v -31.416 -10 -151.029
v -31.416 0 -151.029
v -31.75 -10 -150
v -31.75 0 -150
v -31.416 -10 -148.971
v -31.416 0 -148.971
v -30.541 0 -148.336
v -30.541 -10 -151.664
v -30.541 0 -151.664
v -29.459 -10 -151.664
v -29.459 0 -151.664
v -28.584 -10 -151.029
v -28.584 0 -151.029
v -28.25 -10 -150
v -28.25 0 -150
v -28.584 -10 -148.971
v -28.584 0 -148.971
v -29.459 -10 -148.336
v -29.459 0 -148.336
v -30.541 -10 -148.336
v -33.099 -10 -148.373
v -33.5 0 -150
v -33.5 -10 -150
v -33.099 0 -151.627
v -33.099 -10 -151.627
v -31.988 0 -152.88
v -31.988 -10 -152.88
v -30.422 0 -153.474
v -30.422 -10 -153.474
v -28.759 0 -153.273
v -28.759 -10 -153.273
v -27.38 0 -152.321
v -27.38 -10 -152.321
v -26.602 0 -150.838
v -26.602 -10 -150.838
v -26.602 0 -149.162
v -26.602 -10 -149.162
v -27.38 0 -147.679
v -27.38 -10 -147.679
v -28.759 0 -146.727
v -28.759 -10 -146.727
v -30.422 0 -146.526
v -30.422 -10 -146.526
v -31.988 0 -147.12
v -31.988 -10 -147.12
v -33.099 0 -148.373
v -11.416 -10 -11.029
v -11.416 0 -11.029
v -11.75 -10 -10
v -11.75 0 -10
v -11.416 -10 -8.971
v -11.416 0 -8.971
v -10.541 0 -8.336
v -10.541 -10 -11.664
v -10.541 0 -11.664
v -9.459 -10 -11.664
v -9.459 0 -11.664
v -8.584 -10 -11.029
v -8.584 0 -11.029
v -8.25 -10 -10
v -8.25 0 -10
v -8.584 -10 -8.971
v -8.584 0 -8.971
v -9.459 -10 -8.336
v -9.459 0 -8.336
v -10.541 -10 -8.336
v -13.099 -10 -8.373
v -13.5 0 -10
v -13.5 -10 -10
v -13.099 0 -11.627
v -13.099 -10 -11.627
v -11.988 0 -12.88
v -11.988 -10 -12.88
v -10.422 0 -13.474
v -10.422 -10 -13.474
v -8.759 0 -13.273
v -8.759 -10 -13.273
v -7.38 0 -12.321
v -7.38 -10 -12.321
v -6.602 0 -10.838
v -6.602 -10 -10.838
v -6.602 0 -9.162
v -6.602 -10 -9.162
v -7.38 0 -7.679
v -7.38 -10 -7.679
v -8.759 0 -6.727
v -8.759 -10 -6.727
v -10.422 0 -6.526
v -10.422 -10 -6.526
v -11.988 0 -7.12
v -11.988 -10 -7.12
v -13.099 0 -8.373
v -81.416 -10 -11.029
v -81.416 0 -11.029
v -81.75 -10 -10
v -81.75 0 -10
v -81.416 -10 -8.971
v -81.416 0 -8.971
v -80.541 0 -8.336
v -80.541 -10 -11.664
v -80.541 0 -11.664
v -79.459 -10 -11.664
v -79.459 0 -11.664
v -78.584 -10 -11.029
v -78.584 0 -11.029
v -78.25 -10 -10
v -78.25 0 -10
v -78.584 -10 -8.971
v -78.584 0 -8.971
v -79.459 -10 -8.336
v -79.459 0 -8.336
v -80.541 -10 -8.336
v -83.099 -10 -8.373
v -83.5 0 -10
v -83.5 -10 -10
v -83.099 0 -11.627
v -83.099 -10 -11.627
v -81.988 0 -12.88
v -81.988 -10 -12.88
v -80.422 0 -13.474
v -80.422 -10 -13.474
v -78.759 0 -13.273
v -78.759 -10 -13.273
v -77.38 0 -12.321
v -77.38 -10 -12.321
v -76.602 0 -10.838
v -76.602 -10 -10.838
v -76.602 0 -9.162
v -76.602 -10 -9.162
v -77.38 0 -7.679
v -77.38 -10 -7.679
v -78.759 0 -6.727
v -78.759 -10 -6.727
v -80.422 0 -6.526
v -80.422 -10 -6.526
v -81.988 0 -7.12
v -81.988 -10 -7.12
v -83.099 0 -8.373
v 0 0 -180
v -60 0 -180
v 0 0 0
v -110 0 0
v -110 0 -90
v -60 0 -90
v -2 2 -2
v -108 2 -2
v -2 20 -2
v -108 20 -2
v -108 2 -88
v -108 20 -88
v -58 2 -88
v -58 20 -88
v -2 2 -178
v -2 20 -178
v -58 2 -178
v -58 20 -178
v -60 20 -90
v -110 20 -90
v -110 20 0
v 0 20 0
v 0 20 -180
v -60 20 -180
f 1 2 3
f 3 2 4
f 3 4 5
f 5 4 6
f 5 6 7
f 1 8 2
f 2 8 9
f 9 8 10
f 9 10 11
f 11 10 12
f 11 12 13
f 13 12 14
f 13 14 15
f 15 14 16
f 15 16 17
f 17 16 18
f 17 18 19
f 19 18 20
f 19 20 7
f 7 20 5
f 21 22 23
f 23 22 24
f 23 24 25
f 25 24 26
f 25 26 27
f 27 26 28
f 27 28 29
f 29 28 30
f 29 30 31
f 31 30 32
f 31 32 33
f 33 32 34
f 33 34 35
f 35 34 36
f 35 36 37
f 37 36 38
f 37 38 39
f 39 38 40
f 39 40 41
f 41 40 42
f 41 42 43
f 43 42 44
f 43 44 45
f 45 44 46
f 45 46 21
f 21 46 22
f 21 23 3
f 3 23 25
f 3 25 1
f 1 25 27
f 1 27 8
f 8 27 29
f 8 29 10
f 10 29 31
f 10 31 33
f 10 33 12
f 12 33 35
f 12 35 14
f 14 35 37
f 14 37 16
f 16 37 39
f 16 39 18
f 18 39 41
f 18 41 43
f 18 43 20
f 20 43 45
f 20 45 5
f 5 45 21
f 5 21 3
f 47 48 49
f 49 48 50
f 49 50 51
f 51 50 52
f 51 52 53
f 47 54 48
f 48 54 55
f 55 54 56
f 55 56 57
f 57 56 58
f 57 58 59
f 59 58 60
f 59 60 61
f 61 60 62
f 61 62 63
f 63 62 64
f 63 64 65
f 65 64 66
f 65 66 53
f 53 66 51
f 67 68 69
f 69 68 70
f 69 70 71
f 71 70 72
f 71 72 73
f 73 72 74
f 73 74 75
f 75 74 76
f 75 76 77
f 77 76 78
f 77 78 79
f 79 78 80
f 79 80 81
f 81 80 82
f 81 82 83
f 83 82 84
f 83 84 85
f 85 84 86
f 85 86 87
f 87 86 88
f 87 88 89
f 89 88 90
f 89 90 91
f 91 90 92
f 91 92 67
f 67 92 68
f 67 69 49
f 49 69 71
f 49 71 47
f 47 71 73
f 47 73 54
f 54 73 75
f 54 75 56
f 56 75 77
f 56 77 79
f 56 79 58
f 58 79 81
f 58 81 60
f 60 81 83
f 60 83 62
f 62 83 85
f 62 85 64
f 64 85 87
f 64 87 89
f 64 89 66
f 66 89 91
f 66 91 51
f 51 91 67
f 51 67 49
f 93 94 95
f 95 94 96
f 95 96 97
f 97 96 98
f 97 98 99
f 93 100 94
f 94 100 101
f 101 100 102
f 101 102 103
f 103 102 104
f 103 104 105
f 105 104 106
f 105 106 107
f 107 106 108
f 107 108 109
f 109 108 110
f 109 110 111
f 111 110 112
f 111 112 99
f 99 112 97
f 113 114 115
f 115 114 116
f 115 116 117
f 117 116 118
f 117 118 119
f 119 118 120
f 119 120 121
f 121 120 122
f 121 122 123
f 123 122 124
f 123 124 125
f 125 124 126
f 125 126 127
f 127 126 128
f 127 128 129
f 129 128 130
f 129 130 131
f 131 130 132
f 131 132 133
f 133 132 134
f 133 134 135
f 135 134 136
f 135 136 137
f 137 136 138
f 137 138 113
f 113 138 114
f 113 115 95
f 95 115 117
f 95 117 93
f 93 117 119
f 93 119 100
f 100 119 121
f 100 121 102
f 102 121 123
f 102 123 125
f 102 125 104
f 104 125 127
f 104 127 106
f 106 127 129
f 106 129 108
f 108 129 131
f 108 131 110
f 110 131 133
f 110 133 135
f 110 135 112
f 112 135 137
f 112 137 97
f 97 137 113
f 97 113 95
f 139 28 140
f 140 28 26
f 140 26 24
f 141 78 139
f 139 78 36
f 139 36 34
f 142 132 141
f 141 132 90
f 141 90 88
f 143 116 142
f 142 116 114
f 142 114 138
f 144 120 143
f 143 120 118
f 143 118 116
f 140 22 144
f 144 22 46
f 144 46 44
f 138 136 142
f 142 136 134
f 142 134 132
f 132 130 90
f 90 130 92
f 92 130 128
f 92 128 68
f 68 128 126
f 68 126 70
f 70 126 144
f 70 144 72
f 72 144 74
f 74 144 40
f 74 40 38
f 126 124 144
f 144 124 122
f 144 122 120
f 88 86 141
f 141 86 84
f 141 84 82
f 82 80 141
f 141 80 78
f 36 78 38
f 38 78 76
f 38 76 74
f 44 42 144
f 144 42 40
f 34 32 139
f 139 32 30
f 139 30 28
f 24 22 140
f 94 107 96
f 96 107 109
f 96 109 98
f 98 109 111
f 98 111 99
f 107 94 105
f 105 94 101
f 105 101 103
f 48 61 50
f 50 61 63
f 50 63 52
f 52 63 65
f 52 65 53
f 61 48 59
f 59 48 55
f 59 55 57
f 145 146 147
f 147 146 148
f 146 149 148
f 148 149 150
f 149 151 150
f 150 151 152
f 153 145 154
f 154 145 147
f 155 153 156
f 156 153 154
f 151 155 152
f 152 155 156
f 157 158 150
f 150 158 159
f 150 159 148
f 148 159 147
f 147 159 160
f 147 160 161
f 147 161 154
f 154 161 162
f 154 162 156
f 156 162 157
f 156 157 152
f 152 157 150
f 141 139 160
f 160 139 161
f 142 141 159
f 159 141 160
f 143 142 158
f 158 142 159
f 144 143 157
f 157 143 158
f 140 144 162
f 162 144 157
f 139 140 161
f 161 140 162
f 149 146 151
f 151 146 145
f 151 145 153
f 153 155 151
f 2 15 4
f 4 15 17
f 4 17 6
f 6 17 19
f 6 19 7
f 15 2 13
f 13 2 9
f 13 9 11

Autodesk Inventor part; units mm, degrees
ref_plane "YZ Plane" through (0, 0, 0) normal (1, 0, 0) x (0, 1, 0)
ref_plane "XZ Plane" through (0, 0, 0) normal (0, 1, 0) x (-1, 0, 0)
ref_plane "XY Plane" through (0, 0, 0) normal (0, 0, 1) x (1, 0, 0)
sketch "Szkic1" plane through (0, 0, 0) normal (0, 1, 0) x (-1, 0, 0)
  line L0 (0, 0) -> (110, 0)
  line L1 (110, 0) -> (110, -90)
  line L2 (110, -90) -> (0, -90)
  line L3 (0, -90) -> (0, 0)
  line L4 (0, -90) -> (60, -90)
  line L5 (60, -90) -> (60, -180)
  line L6 (60, -180) -> (0, -180)
  line L7 (0, -180) -> (0, -90)
  line L8 (2, -2) -> (108, -2)
  line L9 (108, -2) -> (108, -88)
  line L10 (108, -88) -> (2, -88)
  line L11 (2, -88) -> (2, -2)
  line L12 (2, -2) -> (108, -88) construction
  line L13 (108, -2) -> (2, -88) construction
  line L14 (2, -92) -> (58, -92)
  line L15 (58, -92) -> (58, -178)
  line L16 (58, -178) -> (2, -178)
  line L17 (2, -178) -> (2, -92)
  line L18 (2, -92) -> (58, -178) construction
  line L19 (58, -92) -> (2, -178) construction
  line L20 (55, -88) -> (2, -88)
  line L21 (2, -88) -> (2, -92)
  line L22 (2, -92) -> (55, -92)
  line L23 (55, -92) -> (55, -88)
  line L24 (58, -92) -> (2, -92)
  line L25 (2, -92) -> (2, -88)
  line L26 (2, -88) -> (58, -88)
  line L27 (58, -88) -> (58, -92)
  line L28 (0, 0) -> (10, 0)
  line L29 (10, 0) -> (10, -10)
  circle A0 centre (10, -10) radius 1.75
  circle A1 centre (10, -10) radius 3.5
  circle A2 centre (20, -10) radius 3.5
  circle A3 centre (20, -10) radius 1.75
  circle A4 centre (30, -10) radius 3.5
  circle A5 centre (30, -10) radius 1.75
  circle A6 centre (40, -10) radius 3.5
  circle A7 centre (40, -10) radius 1.75
  circle A8 centre (50, -10) radius 3.5
  circle A9 centre (50, -10) radius 1.75
  circle A10 centre (60, -10) radius 3.5
  circle A11 centre (60, -10) radius 1.75
  circle A12 centre (70, -10) radius 3.5
  circle A13 centre (70, -10) radius 1.75
  circle A14 centre (80, -10) radius 3.5
  circle A15 centre (80, -10) radius 1.75
  circle A16 centre (90, -10) radius 3.5
  circle A17 centre (90, -10) radius 1.75
  circle A18 centre (100, -10) radius 3.5
  circle A19 centre (100, -10) radius 1.75
  circle A20 centre (10, -20) radius 3.5
  circle A21 centre (10, -20) radius 1.75
  circle A22 centre (20, -20) radius 3.5
  circle A23 centre (20, -20) radius 1.75
  circle A24 centre (30, -20) radius 3.5
  circle A25 centre (30, -20) radius 1.75
  circle A26 centre (40, -20) radius 3.5
  circle A27 centre (40, -20) radius 1.75
  circle A28 centre (50, -20) radius 3.5
  circle A29 centre (50, -20) radius 1.75
  circle A30 centre (60, -20) radius 3.5
  circle A31 centre (60, -20) radius 1.75
  circle A32 centre (70, -20) radius 3.5
  circle A33 centre (70, -20) radius 1.75
  circle A34 centre (80, -20) radius 3.5
  circle A35 centre (80, -20) radius 1.75
  circle A36 centre (90, -20) radius 3.5
  circle A37 centre (90, -20) radius 1.75
  circle A38 centre (100, -20) radius 3.5
  circle A39 centre (100, -20) radius 1.75
  circle A40 centre (10, -30) radius 3.5
  circle A41 centre (10, -30) radius 1.75
  circle A42 centre (20, -30) radius 3.5
  circle A43 centre (20, -30) radius 1.75
  circle A44 centre (30, -30) radius 3.5
  circle A45 centre (30, -30) radius 1.75
  circle A46 centre (40, -30) radius 3.5
  circle A47 centre (40, -30) radius 1.75
  circle A48 centre (50, -30) radius 3.5
  circle A49 centre (50, -30) radius 1.75
  circle A50 centre (60, -30) radius 3.5
  circle A51 centre (60, -30) radius 1.75
  circle A52 centre (70, -30) radius 3.5
  circle A53 centre (70, -30) radius 1.75
  circle A54 centre (80, -30) radius 3.5
  circle A55 centre (80, -30) radius 1.75
  circle A56 centre (90, -30) radius 3.5
  circle A57 centre (90, -30) radius 1.75
  circle A58 centre (100, -30) radius 3.5
  circle A59 centre (100, -30) radius 1.75
  circle A60 centre (10, -40) radius 3.5
  circle A61 centre (10, -40) radius 1.75
  circle A62 centre (20, -40) radius 3.5
  circle A63 centre (20, -40) radius 1.75
  circle A64 centre (30, -40) radius 3.5
  circle A65 centre (30, -40) radius 1.75
  circle A66 centre (40, -40) radius 3.5
  circle A67 centre (40, -40) radius 1.75
  circle A68 centre (50, -40) radius 3.5
  circle A69 centre (50, -40) radius 1.75
  circle A70 centre (60, -40) radius 3.5
  circle A71 centre (60, -40) radius 1.75
  circle A72 centre (70, -40) radius 3.5
  circle A73 centre (70, -40) radius 1.75
  circle A74 centre (80, -40) radius 3.5
  circle A75 centre (80, -40) radius 1.75
  circle A76 centre (90, -40) radius 3.5
  circle A77 centre (90, -40) radius 1.75
  circle A78 centre (100, -40) radius 3.5
  circle A79 centre (100, -40) radius 1.75
  circle A80 centre (10, -50) radius 3.5
  circle A81 centre (10, -50) radius 1.75
  circle A82 centre (20, -50) radius 3.5
  circle A83 centre (20, -50) radius 1.75
  circle A84 centre (30, -50) radius 3.5
  circle A85 centre (30, -50) radius 1.75
  circle A86 centre (40, -50) radius 3.5
  circle A87 centre (40, -50) radius 1.75
  circle A88 centre (50, -50) radius 3.5
  circle A89 centre (50, -50) radius 1.75
  circle A90 centre (60, -50) radius 3.5
  circle A91 centre (60, -50) radius 1.75
  circle A92 centre (70, -50) radius 3.5
  circle A93 centre (70, -50) radius 1.75
  circle A94 centre (80, -50) radius 3.5
  circle A95 centre (80, -50) radius 1.75
  circle A96 centre (90, -50) radius 3.5
  circle A97 centre (90, -50) radius 1.75
  circle A98 centre (100, -50) radius 3.5
  circle A99 centre (100, -50) radius 1.75
  circle A100 centre (10, -60) radius 3.5
  circle A101 centre (10, -60) radius 1.75
  circle A102 centre (20, -60) radius 3.5
  circle A103 centre (20, -60) radius 1.75
  circle A104 centre (30, -60) radius 3.5
  circle A105 centre (30, -60) radius 1.75
  circle A106 centre (40, -60) radius 3.5
  circle A107 centre (40, -60) radius 1.75
  circle A108 centre (50, -60) radius 3.5
  circle A109 centre (50, -60) radius 1.75
  circle A110 centre (60, -60) radius 3.5
  circle A111 centre (60, -60) radius 1.75
  circle A112 centre (70, -60) radius 3.5
  circle A113 centre (70, -60) radius 1.75
  circle A114 centre (80, -60) radius 3.5
  circle A115 centre (80, -60) radius 1.75
  circle A116 centre (90, -60) radius 3.5
  circle A117 centre (90, -60) radius 1.75
  circle A118 centre (100, -60) radius 3.5
  circle A119 centre (100, -60) radius 1.75
  circle A120 centre (10, -70) radius 3.5
  circle A121 centre (10, -70) radius 1.75
  circle A122 centre (20, -70) radius 3.5
  circle A123 centre (20, -70) radius 1.75
  circle A124 centre (30, -70) radius 3.5
  circle A125 centre (30, -70) radius 1.75
  circle A126 centre (40, -70) radius 3.5
  circle A127 centre (40, -70) radius 1.75
  circle A128 centre (50, -70) radius 3.5
  circle A129 centre (50, -70) radius 1.75
  circle A130 centre (60, -70) radius 3.5
  circle A131 centre (60, -70) radius 1.75
  circle A132 centre (70, -70) radius 3.5
  circle A133 centre (70, -70) radius 1.75
  circle A134 centre (80, -70) radius 3.5
  circle A135 centre (80, -70) radius 1.75
  circle A136 centre (90, -70) radius 3.5
  circle A137 centre (90, -70) radius 1.75
  circle A138 centre (100, -70) radius 3.5
  circle A139 centre (100, -70) radius 1.75
  circle A140 centre (10, -80) radius 3.5
  circle A141 centre (10, -80) radius 1.75
  circle A142 centre (20, -80) radius 3.5
  circle A143 centre (20, -80) radius 1.75
  circle A144 centre (30, -80) radius 3.5
  circle A145 centre (30, -80) radius 1.75
  circle A146 centre (40, -80) radius 3.5
  circle A147 centre (40, -80) radius 1.75
  circle A148 centre (50, -80) radius 3.5
  circle A149 centre (50, -80) radius 1.75
  circle A150 centre (60, -80) radius 3.5
  circle A151 centre (60, -80) radius 1.75
  circle A152 centre (70, -80) radius 3.5
  circle A153 centre (70, -80) radius 1.75
  circle A154 centre (80, -80) radius 3.5
  circle A155 centre (80, -80) radius 1.75
  circle A156 centre (90, -80) radius 3.5
  circle A157 centre (90, -80) radius 1.75
  circle A158 centre (100, -80) radius 3.5
  circle A159 centre (100, -80) radius 1.75
  circle A160 centre (10, -90) radius 3.5
  circle A161 centre (10, -90) radius 1.75
  circle A162 centre (20, -90) radius 3.5
  circle A163 centre (20, -90) radius 1.75
  circle A164 centre (30, -90) radius 3.5
  circle A165 centre (30, -90) radius 1.75
  circle A166 centre (40, -90) radius 3.5
  circle A167 centre (40, -90) radius 1.75
  circle A168 centre (50, -90) radius 3.5
  circle A169 centre (50, -90) radius 1.75
  circle A170 centre (60, -90) radius 3.5
  circle A171 centre (60, -90) radius 1.75
  circle A172 centre (70, -90) radius 3.5
  circle A173 centre (70, -90) radius 1.75
  circle A174 centre (80, -90) radius 3.5
  circle A175 centre (80, -90) radius 1.75
  circle A176 centre (90, -90) radius 3.5
  circle A177 centre (90, -90) radius 1.75
  circle A178 centre (100, -90) radius 3.5
  circle A179 centre (100, -90) radius 1.75
  circle A180 centre (10, -100) radius 3.5
  circle A181 centre (10, -100) radius 1.75
  circle A182 centre (20, -100) radius 3.5
  circle A183 centre (20, -100) radius 1.75
  circle A184 centre (30, -100) radius 3.5
  circle A185 centre (30, -100) radius 1.75
  circle A186 centre (40, -100) radius 3.5
  circle A187 centre (40, -100) radius 1.75
  circle A188 centre (50, -100) radius 3.5
  circle A189 centre (50, -100) radius 1.75
  circle A190 centre (60, -100) radius 3.5
  circle A191 centre (60, -100) radius 1.75
  circle A192 centre (70, -100) radius 3.5
  circle A193 centre (70, -100) radius 1.75
  circle A194 centre (80, -100) radius 3.5
  circle A195 centre (80, -100) radius 1.75
  circle A196 centre (90, -100) radius 3.5
  circle A197 centre (90, -100) radius 1.75
  circle A198 centre (100, -100) radius 3.5
  circle A199 centre (100, -100) radius 1.75
  circle A200 centre (10, -110) radius 3.5
  circle A201 centre (10, -110) radius 1.75
  circle A202 centre (20, -110) radius 3.5
  circle A203 centre (20, -110) radius 1.75
  circle A204 centre (30, -110) radius 3.5
  circle A205 centre (30, -110) radius 1.75
  circle A206 centre (40, -110) radius 3.5
  circle A207 centre (40, -110) radius 1.75
  circle A208 centre (50, -110) radius 3.5
  circle A209 centre (50, -110) radius 1.75
  circle A210 centre (60, -110) radius 3.5
  circle A211 centre (60, -110) radius 1.75
  circle A212 centre (70, -110) radius 3.5
  circle A213 centre (70, -110) radius 1.75
  circle A214 centre (80, -110) radius 3.5
  circle A215 centre (80, -110) radius 1.75
  circle A216 centre (90, -110) radius 3.5
  circle A217 centre (90, -110) radius 1.75
  circle A218 centre (100, -110) radius 3.5
  circle A219 centre (100, -110) radius 1.75
  circle A220 centre (10, -120) radius 3.5
  circle A221 centre (10, -120) radius 1.75
  circle A222 centre (20, -120) radius 3.5
  circle A223 centre (20, -120) radius 1.75
  circle A224 centre (30, -120) radius 3.5
  circle A225 centre (30, -120) radius 1.75
  circle A226 centre (40, -120) radius 3.5
  circle A227 centre (40, -120) radius 1.75
  circle A228 centre (50, -120) radius 3.5
  circle A229 centre (50, -120) radius 1.75
  circle A230 centre (60, -120) radius 3.5
  circle A231 centre (60, -120) radius 1.75
  circle A232 centre (70, -120) radius 3.5
  circle A233 centre (70, -120) radius 1.75
  circle A234 centre (80, -120) radius 3.5
  circle A235 centre (80, -120) radius 1.75
  circle A236 centre (90, -120) radius 3.5
  circle A237 centre (90, -120) radius 1.75
  circle A238 centre (100, -120) radius 3.5
  circle A239 centre (100, -120) radius 1.75
  circle A240 centre (10, -130) radius 3.5
  circle A241 centre (10, -130) radius 1.75
  circle A242 centre (20, -130) radius 3.5
  circle A243 centre (20, -130) radius 1.75
  circle A244 centre (30, -130) radius 3.5
  circle A245 centre (30, -130) radius 1.75
  circle A246 centre (40, -130) radius 3.5
  circle A247 centre (40, -130) radius 1.75
  circle A248 centre (50, -130) radius 3.5
  circle A249 centre (50, -130) radius 1.75
  circle A250 centre (60, -130) radius 3.5
  circle A251 centre (60, -130) radius 1.75
  circle A252 centre (70, -130) radius 3.5
  circle A253 centre (70, -130) radius 1.75
  circle A254 centre (80, -130) radius 3.5
  circle A255 centre (80, -130) radius 1.75
  circle A256 centre (90, -130) radius 3.5
  circle A257 centre (90, -130) radius 1.75
  circle A258 centre (100, -130) radius 3.5
  circle A259 centre (100, -130) radius 1.75
  circle A260 centre (10, -140) radius 3.5
  circle A261 centre (10, -140) radius 1.75
  circle A262 centre (20, -140) radius 3.5
  circle A263 centre (20, -140) radius 1.75
  circle A264 centre (30, -140) radius 3.5
  circle A265 centre (30, -140) radius 1.75
  circle A266 centre (40, -140) radius 3.5
  circle A267 centre (40, -140) radius 1.75
  circle A268 centre (50, -140) radius 3.5
  circle A269 centre (50, -140) radius 1.75
  circle A270 centre (60, -140) radius 3.5
  circle A271 centre (60, -140) radius 1.75
  circle A272 centre (70, -140) radius 3.5
  circle A273 centre (70, -140) radius 1.75
  circle A274 centre (80, -140) radius 3.5
  circle A275 centre (80, -140) radius 1.75
  circle A276 centre (90, -140) radius 3.5
  circle A277 centre (90, -140) radius 1.75
  circle A278 centre (100, -140) radius 3.5
  circle A279 centre (100, -140) radius 1.75
  circle A280 centre (10, -150) radius 3.5
  circle A281 centre (10, -150) radius 1.75
  circle A282 centre (20, -150) radius 3.5
  circle A283 centre (20, -150) radius 1.75
  circle A284 centre (30, -150) radius 3.5
  circle A285 centre (30, -150) radius 1.75
  circle A286 centre (40, -150) radius 3.5
  circle A287 centre (40, -150) radius 1.75
  circle A288 centre (50, -150) radius 3.5
  circle A289 centre (50, -150) radius 1.75
  circle A290 centre (60, -150) radius 3.5
  circle A291 centre (60, -150) radius 1.75
  circle A292 centre (70, -150) radius 3.5
  circle A293 centre (70, -150) radius 1.75
  circle A294 centre (80, -150) radius 3.5
  circle A295 centre (80, -150) radius 1.75
  circle A296 centre (90, -150) radius 3.5
  circle A297 centre (90, -150) radius 1.75
  circle A298 centre (100, -150) radius 3.5
  circle A299 centre (100, -150) radius 1.75
  point P0 (55, -45)
  point P1 (30, -135)
  point P2 (60, -90)
  dimension "d0" = 110
  dimension "d1" = 90
  dimension "d2" = 60
  dimension "d3" = 90
  dimension "d4" = 106
  dimension "d5" = 86
  dimension "d6" = 56
  dimension "d7" = 86
  dimension "d12" = 10
  dimension "d13" = 10
  dimension "d14" = 90
  dimension "d15" = 3.5
  dimension "d16" = 7
  dimension "d19" = 10
  dimension "d22" = 10
  dimension "d27" = 2
  dimension "d28" = 2
  dimension "d29" = 2
  dimension "d30" = 2
extrude "Wyciągnięcie proste1" add sketch "Szkic1" along normal blind 2 contours L0 L29 L8 L11 L21 L2 L3 | L0 L1 L2 A178 L10 L9 L8 L29 | L2 L21 L17 L16 L15 A290 L5 L6 L7 | L8 L9 L10 A178 A176 A174 A172 A170 A168 A166 A164 A162 A160 L11 | A0 | A1 | L21 L10 A160 L2 | L2 A160 L14 L21 | A160 L10 L2 A161 | L2 A161 A160 L14 | L14 A160 A162 A164 A166 A168 A170 L15 A190 A210 A230 A250 A270 A290 L16 L17 | L2 A179 A178 L10 | A161 L2 | L2 A161 | A160 L10 | L14 A160 | A290 L15 L5 A291 | L2 A179 | L10 A178 | L2 A176 L10 A178 | L10 A162 L2 A160 | A160 L2 A162 L14 | A291 L5 | A290 L15 | L2 A177 A176 L10 | A162 L10 | L10 A162 L2 A163 | A162 L2 A163 L14 | L14 A162 | L15 A270 L5 A290 | L10 A176 | L2 A177 | L2 A174 L10 A176 | L10 A164 L2 A162 | A162 L2 A164 L14 | A270 L15 | L15 A270 L5 A271 | L2 A175 A174 L10 | A163 L2 | L2 A163 | A164 L10 | L10 A164 L2 A165 | A164 L2 A165 L14 | L14 A164 | L15 A250 L5 A270 | A271 L5 | L10 A174 | L2 A175 | L2 A172 L10 A174 | L10 A166 L2 A164 | A164 L2 A166 L14 | A250 L15 | L15 A250 L5 A251 | L2 A173 A172 L10 | A166 L10 | L10 A166 L2 A167 | A165 L2 | L2 A165 | A166 L2 A167 L14 | L14 A166 | L15 A230 L5 A250 | L10 A172 | L2 A173 | L2 A170 L10 A172 | L10 A168 L2 A166 | A166 L2 A168 L14 | A230 L15 | L15 A230 L5 A231 | A251 L5 | L2 A171 L27 L10 A170 | A168 L10 | L10 A168 L2 A169 | A167 L2 | L2 A167 | A168 L2 A169 L14 | L14 A168 | L15 A210 L5 A230 | L10 A170 | L2 A171 | A170 L15 L27 L2 A171 L5 | L5 A190 L15 A170 | L10 L23 L2 A168 | A168 L2 L23 L14 | A210 L15 | L15 A210 L5 A211 | A231 L5 | L27 L2 A170 L10 | A170 L2 L23 L10 | L5 A171 L2 | L5 A191 A190 L15 | A170 L14 L15 | A169 L2 | L2 A169 | L23 L2 A170 L14 | L15 A190 L5 A210 | L27 L14 A170 L2 | L5 A191 | L15 A190 | A211 L5 | A2 | A3 | A4 | A5 | A6 | A7 | A8 | A9 | A10 | A11 | A12 | A13 | A14 | A15 | A16 | A17 | A18 | A19 | A20 | A21 | A22 | A23 | A24 | A25 | A26 | A27 | A28 | A29 | A30 | A31 | A32 | A33 | A34 | A35 | A36 | A37 | A38 | A39 | A40 | A41 | A42 | A43 | A44 | A45 | A46 | A47 | A48 | A49 | A50 | A51 | A52 | A53 | A54 | A55 | A56 | A57 | A58 | A59 | A60 | A61 | A62 | A63 | A64 | A65 | A66 | A67 | A68 | A69 | A70 | A71 | A72 | A73 | A74 | A75 | A76 | A77 | A78 | A79 | A80 | A81 | A82 | A83 | A84 | A85 | A86 | A87 | A88 | A89 | A90 | A91 | A92 | A93 | A94 | A95 | A96 | A97 | A98 | A99 | A100 | A101 | A102 | A103 | A104 | A105 | A106 | A107 | A108 | A109 | A110 | A111 | A112 | A113 | A114 | A115 | A116 | A117 | A118 | A119 | A120 | A121 | A122 | A123 | A124 | A125 | A126 | A127 | A128 | A129 | A130 | A131 | A132 | A133 | A134 | A135 | A136 | A137 | A138 | A139 | A140 | A141 | A142 | A143 | A144 | A145 | A146 | A147 | A148 | A149 | A150 | A151 | A152 | A153 | A154 | A155 | A156 | A157 | A158 | A159 | A180 | A181 | A182 | A183 | A184 | A185 | A186 | A187 | A188 | A189 | A200 | A201 | A202 | A203 | A204 | A205 | A206 | A207 | A208 | A209 | A220 | A221 | A222 | A223 | A224 | A225 | A226 | A227 | A228 | A229 | A240 | A241 | A242 | A243 | A244 | A245 | A246 | A247 | A248 | A249 | A260 | A261 | A262 | A263 | A264 | A265 | A266 | A267 | A268 | A269 | A280 | A281 | A282 | A283 | A284 | A285 | A286 | A287 | A288 | A289 picked at (100.2069, -89.4546) picked at (59.4209, -150.0703) picked at (90.2069, -89.4546) picked at (59.4209, -140.0703) picked at (80.2069, -89.4546) picked at (70.2069, -89.4546) picked at (59.4209, -130.0703) picked at (59.5199, -120.3314) picked at (58.848, -90.1298) picked at (59.1092, -100.2815) picked at (59.5199, -110.3314)
extrude "Wyciągnięcie proste2" add sketch "Szkic1" along normal blind 20 contours L0 L29 L8 L11 L21 L2 L3 | L0 L1 L2 A178 L10 L9 L8 L29 | L2 L21 L17 L16 L15 A290 L5 L6 L7 | L2 A179 A178 L10 | A290 L15 L5 A291 | L2 A179 | L2 A176 L10 A178 | A291 L5 | L2 A177 A176 L10 | L15 A270 L5 A290 | L2 A177 | L2 A174 L10 A176 | L15 A270 L5 A271 | L2 A175 A174 L10 | L15 A250 L5 A270 | A271 L5 | L2 A175 | L2 A172 L10 A174 | L15 A250 L5 A251 | L2 A173 A172 L10 | L15 A230 L5 A250 | L2 A173 | L2 A170 L10 A172 | L15 A230 L5 A231 | A251 L5 | L2 A171 L27 L10 A170 | L15 A210 L5 A230 | L2 A171 | A170 L15 L27 L2 A171 L5 | L5 A190 L15 A170 | L15 A210 L5 A211 | A231 L5 | L5 A171 L2 | L5 A191 A190 L15 | L15 A190 L5 A210 | L5 A191 | A211 L5 picked at (100.2069, -89.4546) picked at (59.4209, -150.0703) picked at (90.2069, -89.4546) picked at (59.4209, -140.0703) picked at (80.2069, -89.4546) picked at (70.2069, -89.4546) picked at (59.4209, -130.0703) picked at (59.5199, -120.3314) picked at (58.848, -90.1298) picked at (59.1092, -100.2815) picked at (59.5199, -110.3314)
extrude "Wyciągnięcie proste3" add sketch "Szkic1" against normal blind 10 contours A1 | A14 | A284
properties part number "skrzynka_na_elektronike"
